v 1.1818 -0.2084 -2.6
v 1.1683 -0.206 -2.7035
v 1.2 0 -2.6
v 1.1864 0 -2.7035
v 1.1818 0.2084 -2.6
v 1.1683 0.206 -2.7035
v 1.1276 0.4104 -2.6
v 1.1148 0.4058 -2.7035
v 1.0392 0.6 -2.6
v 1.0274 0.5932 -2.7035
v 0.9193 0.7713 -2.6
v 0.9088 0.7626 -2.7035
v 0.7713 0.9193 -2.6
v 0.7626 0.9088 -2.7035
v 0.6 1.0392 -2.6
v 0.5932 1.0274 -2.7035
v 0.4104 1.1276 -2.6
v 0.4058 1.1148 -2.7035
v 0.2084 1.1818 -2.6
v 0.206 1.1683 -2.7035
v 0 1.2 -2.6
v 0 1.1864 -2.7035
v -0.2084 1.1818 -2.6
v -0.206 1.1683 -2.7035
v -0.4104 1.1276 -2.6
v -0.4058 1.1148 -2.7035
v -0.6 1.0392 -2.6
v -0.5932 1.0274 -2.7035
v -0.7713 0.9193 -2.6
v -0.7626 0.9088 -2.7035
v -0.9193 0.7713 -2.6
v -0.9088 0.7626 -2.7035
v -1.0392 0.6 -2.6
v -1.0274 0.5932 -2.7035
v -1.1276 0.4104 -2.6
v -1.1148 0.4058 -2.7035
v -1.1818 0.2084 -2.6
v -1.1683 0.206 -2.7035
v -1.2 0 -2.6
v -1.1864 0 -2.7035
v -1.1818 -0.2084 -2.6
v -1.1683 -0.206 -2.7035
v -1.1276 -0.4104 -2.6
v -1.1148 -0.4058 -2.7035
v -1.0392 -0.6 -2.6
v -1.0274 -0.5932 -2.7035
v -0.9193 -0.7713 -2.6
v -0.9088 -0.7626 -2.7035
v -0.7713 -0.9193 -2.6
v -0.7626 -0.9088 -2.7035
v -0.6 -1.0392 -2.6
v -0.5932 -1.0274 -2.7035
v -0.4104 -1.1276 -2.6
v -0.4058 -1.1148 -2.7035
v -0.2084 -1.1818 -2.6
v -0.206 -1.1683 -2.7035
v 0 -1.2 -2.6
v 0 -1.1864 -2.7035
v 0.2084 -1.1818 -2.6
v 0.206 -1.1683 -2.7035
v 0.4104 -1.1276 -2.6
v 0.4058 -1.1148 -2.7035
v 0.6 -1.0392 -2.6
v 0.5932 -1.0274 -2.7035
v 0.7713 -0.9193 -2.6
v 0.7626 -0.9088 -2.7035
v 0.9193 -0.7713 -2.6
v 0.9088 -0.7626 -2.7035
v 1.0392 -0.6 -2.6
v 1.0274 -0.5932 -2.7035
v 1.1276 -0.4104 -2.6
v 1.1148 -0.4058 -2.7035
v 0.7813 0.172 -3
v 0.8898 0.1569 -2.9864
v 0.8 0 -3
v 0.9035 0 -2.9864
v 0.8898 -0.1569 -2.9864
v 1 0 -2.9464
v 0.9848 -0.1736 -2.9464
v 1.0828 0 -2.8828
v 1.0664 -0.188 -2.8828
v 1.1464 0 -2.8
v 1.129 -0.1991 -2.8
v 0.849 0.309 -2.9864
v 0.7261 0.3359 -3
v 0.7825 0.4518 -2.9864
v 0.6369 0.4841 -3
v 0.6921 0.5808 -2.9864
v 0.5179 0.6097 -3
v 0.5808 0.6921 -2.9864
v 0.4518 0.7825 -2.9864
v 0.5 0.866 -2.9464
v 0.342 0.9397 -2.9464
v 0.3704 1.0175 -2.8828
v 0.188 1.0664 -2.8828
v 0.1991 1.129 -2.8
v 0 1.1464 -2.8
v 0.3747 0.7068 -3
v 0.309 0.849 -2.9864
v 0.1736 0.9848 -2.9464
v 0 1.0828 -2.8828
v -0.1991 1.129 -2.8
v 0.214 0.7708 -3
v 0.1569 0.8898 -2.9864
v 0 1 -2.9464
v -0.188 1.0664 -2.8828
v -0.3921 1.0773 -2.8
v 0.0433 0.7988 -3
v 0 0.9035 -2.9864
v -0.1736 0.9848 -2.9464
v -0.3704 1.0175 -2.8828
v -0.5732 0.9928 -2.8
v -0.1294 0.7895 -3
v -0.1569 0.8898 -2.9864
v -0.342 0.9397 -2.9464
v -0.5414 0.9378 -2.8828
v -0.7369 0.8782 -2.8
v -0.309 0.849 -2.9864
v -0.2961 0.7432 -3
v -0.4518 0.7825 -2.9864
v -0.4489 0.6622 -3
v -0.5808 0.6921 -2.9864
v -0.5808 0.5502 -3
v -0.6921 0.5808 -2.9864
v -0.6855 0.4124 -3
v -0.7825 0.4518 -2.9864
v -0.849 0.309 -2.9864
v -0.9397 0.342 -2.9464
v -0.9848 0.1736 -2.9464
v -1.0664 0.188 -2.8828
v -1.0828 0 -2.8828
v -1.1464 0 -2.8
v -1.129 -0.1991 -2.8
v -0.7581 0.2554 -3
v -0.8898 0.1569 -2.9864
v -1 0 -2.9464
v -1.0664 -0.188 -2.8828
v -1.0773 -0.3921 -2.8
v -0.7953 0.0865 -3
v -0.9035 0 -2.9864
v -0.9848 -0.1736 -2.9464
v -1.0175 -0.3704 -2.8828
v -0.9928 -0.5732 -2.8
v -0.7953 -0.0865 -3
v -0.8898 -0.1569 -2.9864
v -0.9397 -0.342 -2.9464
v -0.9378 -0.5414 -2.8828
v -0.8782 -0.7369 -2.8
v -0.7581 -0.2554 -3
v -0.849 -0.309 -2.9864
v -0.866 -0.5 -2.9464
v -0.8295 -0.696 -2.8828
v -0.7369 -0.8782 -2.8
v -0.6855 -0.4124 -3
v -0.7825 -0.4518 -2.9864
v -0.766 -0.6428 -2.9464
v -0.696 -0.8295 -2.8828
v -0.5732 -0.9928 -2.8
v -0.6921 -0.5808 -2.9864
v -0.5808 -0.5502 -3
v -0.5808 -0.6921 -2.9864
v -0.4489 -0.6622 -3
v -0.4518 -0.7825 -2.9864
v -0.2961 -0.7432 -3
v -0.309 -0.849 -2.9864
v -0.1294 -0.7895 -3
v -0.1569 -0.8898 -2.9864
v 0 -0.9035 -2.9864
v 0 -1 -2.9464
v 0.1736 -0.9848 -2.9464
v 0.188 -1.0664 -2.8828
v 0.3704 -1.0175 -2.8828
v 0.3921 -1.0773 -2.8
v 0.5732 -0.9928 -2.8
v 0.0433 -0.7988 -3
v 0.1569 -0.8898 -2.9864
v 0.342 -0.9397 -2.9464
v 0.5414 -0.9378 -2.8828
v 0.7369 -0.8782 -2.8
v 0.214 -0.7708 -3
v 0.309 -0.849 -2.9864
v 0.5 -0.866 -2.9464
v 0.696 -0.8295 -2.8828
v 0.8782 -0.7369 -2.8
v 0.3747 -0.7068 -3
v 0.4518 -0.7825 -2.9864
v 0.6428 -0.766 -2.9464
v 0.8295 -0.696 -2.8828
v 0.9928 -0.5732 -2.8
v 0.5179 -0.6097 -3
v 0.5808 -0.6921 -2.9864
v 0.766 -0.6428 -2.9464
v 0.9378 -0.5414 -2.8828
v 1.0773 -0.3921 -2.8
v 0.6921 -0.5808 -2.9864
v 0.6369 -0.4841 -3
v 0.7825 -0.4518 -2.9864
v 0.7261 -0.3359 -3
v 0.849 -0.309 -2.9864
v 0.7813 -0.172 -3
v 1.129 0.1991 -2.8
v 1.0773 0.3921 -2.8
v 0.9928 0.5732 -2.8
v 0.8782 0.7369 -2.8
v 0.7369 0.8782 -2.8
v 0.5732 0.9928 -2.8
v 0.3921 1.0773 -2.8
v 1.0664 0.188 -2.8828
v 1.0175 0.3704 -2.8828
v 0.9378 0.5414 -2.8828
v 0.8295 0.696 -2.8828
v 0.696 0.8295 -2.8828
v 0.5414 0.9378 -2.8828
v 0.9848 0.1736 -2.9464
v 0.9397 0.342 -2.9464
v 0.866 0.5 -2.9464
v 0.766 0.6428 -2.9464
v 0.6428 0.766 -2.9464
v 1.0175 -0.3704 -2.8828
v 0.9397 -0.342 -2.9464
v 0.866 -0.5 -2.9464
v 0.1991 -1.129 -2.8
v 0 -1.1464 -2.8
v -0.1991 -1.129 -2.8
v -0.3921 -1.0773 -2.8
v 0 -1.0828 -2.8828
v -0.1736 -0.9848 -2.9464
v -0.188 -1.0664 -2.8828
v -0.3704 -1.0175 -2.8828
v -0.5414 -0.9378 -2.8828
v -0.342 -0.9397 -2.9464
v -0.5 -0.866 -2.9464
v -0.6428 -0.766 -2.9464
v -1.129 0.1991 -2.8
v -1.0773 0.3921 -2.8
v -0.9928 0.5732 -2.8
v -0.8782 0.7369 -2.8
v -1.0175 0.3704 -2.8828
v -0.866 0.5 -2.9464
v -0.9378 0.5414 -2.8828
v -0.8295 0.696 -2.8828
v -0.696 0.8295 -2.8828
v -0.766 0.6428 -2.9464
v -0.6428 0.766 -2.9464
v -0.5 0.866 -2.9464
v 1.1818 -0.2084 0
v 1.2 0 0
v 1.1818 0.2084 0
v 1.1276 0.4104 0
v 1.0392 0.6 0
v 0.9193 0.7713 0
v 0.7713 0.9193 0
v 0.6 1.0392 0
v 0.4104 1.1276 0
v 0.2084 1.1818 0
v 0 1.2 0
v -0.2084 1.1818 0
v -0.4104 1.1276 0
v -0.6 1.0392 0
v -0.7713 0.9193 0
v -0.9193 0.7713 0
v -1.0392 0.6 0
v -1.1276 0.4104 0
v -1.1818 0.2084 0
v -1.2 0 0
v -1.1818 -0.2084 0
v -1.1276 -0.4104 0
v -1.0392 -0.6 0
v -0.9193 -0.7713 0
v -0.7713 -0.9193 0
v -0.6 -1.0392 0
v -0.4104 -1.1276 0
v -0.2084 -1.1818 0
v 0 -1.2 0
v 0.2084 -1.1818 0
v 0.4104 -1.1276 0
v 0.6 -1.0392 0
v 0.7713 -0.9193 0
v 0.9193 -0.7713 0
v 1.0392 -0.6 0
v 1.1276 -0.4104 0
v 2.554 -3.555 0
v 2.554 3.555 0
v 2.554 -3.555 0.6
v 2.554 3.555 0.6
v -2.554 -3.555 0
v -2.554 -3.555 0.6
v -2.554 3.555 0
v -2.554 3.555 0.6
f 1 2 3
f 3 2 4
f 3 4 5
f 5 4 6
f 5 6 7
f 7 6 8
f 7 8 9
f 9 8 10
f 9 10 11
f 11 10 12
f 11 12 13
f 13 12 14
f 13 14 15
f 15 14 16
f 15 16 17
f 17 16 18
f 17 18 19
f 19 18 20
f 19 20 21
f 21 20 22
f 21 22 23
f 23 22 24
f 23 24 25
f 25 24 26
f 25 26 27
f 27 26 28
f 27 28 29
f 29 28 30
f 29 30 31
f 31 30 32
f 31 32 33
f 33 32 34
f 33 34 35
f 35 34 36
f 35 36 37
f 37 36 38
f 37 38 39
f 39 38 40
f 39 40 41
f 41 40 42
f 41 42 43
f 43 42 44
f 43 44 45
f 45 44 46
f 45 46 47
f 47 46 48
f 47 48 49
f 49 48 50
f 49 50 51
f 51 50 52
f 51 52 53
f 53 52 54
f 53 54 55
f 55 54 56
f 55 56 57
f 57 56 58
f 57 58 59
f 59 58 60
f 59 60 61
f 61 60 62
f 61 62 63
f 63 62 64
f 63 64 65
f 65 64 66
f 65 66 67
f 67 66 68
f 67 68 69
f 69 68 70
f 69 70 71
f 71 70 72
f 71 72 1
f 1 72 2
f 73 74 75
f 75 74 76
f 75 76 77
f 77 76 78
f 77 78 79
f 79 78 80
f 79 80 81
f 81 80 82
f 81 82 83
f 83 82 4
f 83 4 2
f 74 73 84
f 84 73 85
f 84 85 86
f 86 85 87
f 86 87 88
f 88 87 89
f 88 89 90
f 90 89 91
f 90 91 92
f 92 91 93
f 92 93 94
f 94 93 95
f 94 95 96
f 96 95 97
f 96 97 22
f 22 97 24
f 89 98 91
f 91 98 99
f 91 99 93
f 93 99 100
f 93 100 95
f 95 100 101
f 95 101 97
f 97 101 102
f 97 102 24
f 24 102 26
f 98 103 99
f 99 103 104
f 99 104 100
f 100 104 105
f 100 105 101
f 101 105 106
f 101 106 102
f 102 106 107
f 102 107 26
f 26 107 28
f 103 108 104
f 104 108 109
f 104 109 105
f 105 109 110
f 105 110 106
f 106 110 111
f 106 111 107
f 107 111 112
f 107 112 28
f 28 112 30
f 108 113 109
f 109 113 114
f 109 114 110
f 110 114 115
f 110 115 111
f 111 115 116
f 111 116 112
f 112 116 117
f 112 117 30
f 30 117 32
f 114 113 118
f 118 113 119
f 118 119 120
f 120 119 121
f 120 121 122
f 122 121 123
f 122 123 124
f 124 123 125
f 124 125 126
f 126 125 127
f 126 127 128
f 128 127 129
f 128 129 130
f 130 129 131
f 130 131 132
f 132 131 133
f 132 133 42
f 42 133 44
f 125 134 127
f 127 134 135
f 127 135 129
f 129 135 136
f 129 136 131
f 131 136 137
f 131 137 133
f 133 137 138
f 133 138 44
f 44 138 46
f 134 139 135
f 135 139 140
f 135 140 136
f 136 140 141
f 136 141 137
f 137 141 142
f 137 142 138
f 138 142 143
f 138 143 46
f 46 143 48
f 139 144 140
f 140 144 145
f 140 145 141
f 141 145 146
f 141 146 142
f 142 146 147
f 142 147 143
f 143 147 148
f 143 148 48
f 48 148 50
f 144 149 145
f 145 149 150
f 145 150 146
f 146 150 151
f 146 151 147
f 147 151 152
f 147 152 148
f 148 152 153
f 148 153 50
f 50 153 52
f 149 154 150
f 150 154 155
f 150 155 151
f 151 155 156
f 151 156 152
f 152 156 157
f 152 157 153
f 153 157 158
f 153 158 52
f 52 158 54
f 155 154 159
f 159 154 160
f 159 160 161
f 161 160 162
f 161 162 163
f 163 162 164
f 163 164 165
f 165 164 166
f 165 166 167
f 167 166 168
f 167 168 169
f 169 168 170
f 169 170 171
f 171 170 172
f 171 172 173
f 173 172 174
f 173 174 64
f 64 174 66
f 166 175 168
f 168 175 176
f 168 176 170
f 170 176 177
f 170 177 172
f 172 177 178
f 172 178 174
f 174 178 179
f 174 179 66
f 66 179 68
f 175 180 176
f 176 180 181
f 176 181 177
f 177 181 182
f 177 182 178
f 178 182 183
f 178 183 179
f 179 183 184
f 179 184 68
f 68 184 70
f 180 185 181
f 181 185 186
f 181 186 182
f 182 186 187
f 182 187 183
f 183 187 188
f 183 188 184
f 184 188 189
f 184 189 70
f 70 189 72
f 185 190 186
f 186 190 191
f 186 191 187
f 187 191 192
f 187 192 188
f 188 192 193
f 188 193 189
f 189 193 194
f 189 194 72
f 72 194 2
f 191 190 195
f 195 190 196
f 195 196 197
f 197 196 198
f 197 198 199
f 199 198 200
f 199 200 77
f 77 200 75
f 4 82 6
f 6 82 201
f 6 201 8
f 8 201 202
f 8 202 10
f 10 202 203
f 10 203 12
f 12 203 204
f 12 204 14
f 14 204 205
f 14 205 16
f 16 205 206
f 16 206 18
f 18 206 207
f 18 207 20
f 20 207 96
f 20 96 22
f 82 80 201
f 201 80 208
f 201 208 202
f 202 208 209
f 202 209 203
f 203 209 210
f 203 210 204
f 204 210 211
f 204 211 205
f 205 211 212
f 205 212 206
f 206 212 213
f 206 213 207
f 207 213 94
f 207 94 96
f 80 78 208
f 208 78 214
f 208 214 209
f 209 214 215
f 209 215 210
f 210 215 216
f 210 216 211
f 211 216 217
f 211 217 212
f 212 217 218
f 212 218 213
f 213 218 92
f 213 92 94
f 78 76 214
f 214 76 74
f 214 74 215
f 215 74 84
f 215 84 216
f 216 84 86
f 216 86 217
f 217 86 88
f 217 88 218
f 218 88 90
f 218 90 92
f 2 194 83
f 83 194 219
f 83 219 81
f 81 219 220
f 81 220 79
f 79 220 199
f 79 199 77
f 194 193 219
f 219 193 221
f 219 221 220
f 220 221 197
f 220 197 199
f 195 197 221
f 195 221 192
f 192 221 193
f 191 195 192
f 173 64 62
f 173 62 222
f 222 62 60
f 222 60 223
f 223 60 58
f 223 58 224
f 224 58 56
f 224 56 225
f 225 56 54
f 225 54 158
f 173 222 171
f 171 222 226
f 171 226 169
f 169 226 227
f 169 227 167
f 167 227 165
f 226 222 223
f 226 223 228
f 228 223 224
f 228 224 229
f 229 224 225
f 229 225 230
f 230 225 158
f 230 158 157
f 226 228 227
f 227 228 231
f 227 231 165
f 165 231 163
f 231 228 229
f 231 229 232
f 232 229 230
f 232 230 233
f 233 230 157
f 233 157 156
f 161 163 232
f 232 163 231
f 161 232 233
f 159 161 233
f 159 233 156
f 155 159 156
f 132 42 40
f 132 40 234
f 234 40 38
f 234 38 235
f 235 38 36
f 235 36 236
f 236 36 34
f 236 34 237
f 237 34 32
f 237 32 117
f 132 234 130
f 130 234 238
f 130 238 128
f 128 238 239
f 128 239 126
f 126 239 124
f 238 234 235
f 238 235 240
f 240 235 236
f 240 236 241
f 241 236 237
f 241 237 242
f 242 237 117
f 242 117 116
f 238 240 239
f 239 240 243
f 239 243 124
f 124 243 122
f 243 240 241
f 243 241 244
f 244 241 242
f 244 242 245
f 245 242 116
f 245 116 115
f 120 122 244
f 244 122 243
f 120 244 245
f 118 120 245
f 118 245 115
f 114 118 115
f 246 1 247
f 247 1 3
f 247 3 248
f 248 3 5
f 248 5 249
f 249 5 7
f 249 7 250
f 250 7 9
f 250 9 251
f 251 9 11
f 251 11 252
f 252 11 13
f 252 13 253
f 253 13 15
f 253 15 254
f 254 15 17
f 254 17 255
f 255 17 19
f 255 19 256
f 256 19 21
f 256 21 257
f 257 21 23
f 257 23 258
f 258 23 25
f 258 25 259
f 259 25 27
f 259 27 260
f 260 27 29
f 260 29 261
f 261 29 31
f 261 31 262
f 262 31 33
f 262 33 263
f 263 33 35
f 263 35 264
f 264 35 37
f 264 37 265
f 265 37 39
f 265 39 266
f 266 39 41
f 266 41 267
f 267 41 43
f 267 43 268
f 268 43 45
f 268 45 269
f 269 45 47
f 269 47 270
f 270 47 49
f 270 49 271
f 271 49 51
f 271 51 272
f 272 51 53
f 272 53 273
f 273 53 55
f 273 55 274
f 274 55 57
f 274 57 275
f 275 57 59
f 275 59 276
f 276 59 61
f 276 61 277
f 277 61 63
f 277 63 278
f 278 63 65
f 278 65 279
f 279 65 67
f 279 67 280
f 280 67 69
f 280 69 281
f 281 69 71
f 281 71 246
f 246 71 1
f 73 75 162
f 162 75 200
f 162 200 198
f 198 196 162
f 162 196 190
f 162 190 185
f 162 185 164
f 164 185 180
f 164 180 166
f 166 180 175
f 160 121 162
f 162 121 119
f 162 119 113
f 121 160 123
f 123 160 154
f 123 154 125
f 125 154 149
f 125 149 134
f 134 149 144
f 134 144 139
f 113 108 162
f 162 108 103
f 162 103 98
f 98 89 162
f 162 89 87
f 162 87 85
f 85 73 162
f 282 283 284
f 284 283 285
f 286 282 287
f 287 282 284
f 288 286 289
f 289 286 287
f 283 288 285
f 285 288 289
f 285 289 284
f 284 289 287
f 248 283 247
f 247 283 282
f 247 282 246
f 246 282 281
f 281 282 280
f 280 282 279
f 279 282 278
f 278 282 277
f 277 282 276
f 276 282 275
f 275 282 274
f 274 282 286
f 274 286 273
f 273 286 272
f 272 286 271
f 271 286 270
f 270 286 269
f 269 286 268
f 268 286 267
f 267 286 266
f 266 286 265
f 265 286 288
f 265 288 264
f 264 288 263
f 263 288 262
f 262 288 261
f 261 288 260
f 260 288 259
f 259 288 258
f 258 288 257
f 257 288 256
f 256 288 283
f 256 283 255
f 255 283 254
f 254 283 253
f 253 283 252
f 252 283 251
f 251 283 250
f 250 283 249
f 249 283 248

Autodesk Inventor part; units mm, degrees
ref_plane "YZ Plane" through (0, 0, 0) normal (1, 0, 0) x (0, 1, 0)
ref_plane "XZ Plane" through (0, 0, 0) normal (0, 1, 0) x (-1, 0, 0)
ref_plane "XY Plane" through (0, 0, 0) normal (0, 0, 1) x (1, 0, 0)
sketch "Sketch1" plane through (0, 0, 0) normal (0, 0, 1) x (1, 0, 0)
  line L0 (2.554, -3.555) -> (-2.554, -3.555)
  line L1 (-2.554, -3.555) -> (-2.554, 3.555)
  line L2 (-2.554, 3.555) -> (2.554, 3.555)
  line L3 (2.554, 3.555) -> (2.554, -3.555)
  line L4 (2.554, -3.555) -> (-2.554, 3.555) construction
  line L5 (-2.554, -3.555) -> (2.554, 3.555) construction
  point P0 (0, 0)
  dimension "d0" = 5.108
  dimension "d1" = 7.11
sketch "Sketch2" plane through (0, 0, 0) normal (0, 0, 1) x (1, 0, 0)
  circle A0 centre (0, 0) radius 1.2
  dimension "d2" = 2.4
extrude "Extrusion1" add sketch "Sketch1" along normal blind 0.6
extrude "Extrusion2" add sketch "Sketch2" against normal blind 3
fillet "Fillet1" radius 0.4 1 edges at (-1.2, 0, -3)
properties part number "tombol"
